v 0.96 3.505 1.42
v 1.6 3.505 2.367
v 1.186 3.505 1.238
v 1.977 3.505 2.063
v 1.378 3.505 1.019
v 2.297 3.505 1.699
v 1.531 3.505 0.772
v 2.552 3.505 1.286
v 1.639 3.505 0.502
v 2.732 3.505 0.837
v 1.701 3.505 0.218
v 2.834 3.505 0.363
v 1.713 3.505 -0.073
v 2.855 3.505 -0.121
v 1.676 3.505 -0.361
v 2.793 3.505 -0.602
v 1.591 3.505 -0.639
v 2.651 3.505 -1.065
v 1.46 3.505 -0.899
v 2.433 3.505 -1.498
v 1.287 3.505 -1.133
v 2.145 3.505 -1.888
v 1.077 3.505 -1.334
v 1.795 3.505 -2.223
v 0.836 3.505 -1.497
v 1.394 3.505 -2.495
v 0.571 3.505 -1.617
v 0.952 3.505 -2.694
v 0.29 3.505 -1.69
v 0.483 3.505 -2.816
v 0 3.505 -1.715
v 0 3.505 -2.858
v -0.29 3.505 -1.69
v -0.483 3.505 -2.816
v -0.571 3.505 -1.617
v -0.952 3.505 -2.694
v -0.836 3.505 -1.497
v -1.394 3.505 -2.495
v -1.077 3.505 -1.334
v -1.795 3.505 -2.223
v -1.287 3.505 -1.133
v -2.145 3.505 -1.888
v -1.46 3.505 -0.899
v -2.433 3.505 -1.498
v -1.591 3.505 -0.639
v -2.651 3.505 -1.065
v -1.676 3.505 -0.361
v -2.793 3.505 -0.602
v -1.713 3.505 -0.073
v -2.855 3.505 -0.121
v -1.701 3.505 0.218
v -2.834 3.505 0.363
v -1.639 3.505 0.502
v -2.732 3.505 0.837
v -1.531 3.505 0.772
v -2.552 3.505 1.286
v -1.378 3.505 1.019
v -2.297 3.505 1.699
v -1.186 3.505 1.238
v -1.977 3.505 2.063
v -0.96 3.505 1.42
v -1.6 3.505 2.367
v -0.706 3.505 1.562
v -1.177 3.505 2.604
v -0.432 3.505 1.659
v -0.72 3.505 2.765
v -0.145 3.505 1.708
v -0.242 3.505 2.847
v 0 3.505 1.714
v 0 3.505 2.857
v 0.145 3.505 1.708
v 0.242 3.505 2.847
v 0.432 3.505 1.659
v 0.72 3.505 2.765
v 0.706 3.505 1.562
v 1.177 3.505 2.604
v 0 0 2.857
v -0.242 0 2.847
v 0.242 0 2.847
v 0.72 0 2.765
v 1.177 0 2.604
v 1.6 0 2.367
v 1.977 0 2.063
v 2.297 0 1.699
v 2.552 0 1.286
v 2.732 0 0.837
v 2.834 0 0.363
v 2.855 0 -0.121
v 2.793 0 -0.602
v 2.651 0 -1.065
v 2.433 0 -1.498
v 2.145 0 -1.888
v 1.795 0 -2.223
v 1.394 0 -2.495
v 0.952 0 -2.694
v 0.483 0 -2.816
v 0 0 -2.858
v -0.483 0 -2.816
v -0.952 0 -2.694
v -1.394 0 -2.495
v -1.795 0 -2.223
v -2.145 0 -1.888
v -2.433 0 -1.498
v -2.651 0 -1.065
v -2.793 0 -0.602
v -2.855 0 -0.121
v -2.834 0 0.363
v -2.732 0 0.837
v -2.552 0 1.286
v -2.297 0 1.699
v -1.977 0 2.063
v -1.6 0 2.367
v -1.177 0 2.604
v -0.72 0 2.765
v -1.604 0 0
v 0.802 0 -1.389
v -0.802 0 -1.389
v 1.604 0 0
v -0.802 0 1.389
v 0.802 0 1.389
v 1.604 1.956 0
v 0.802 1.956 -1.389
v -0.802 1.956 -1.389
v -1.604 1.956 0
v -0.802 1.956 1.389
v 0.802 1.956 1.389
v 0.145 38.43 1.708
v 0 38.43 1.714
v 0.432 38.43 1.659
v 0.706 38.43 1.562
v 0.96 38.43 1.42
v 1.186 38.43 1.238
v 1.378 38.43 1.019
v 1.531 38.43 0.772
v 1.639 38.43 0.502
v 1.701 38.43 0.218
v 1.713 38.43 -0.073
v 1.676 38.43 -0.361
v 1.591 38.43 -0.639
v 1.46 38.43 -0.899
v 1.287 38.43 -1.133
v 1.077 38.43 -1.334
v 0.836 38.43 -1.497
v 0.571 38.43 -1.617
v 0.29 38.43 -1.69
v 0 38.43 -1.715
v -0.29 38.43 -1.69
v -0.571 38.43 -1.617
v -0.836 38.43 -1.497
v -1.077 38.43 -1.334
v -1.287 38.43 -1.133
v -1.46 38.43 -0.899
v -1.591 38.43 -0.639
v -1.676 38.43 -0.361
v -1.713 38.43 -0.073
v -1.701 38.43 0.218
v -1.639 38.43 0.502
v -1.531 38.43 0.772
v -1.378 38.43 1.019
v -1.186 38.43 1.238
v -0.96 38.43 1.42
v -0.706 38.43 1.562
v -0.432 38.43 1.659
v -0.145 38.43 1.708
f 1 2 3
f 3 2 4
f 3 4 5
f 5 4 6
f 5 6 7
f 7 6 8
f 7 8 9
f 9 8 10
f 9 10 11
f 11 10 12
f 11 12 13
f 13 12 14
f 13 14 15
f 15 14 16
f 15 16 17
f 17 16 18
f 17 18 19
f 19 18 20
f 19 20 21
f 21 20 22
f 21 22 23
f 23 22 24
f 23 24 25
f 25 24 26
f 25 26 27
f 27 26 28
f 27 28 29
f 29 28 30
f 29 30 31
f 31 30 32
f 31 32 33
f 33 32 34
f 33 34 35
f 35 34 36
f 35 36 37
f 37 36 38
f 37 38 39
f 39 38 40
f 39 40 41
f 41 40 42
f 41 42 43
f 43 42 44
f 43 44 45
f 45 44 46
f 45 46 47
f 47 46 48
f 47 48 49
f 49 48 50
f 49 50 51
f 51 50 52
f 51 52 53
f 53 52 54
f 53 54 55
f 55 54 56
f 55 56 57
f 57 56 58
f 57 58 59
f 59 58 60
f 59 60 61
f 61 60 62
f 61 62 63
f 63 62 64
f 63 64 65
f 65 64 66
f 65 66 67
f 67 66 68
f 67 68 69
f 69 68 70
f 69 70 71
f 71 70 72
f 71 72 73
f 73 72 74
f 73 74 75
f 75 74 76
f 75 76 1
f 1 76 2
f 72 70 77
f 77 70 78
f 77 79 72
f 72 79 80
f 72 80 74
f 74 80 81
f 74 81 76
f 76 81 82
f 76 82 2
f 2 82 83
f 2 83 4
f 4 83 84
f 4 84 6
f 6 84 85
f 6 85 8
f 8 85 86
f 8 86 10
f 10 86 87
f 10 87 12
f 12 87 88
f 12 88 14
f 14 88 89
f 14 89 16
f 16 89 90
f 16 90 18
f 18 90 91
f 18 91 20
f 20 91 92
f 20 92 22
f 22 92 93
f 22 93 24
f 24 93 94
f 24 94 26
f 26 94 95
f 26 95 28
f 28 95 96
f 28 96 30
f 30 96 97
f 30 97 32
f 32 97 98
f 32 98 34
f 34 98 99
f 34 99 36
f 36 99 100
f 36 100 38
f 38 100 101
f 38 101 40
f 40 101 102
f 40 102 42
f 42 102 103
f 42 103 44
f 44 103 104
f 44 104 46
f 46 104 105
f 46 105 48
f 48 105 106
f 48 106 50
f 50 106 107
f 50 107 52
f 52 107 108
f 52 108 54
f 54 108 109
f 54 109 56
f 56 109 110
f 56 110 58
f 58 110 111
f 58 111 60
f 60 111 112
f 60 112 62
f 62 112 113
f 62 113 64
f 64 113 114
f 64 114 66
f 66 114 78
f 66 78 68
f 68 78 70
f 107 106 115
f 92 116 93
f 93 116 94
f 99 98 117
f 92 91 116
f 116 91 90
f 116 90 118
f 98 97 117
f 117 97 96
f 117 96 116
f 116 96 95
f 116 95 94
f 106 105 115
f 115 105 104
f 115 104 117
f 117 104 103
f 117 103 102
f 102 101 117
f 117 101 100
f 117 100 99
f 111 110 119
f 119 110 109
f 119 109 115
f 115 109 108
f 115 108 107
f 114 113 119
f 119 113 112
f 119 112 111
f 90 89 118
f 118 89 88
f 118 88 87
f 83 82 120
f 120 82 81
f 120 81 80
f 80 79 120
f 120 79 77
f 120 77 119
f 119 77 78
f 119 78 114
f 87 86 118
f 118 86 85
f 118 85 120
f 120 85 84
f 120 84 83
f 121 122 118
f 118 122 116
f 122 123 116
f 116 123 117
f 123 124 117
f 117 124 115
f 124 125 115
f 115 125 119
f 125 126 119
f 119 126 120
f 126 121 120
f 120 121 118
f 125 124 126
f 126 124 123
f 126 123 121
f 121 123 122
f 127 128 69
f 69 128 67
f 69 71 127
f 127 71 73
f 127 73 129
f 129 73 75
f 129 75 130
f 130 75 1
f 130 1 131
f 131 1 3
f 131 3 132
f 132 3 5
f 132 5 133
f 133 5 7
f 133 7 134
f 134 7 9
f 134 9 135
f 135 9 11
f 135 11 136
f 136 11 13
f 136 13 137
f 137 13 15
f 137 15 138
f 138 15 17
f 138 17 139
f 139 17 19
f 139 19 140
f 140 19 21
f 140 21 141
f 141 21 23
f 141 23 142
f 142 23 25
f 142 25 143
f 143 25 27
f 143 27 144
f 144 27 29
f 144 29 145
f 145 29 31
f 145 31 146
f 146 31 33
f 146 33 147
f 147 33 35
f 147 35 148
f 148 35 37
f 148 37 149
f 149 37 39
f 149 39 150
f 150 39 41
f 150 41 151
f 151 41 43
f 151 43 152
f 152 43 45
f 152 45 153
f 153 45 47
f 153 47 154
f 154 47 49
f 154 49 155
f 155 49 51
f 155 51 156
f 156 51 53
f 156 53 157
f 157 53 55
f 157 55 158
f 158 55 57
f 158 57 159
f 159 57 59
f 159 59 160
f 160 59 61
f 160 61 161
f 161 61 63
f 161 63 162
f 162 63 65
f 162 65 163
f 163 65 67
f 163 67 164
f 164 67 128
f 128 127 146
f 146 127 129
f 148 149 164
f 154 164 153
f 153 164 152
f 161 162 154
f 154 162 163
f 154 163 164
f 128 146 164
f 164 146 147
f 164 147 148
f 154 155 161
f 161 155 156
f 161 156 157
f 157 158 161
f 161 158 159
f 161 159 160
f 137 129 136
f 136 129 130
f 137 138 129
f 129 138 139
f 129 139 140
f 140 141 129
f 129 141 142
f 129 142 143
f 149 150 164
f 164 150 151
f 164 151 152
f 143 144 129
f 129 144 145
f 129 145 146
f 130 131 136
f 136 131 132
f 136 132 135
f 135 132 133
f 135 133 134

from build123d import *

# Parameters (mm, degrees)
SKETCH1_R           = 2.8575
BOSS_EXTRUDE1_DEPTH = 3.5052
CUT_EXTRUDE1_DEPTH  = 1.9558
SKETCH3_R           = 1.7145
BOSS_EXTRUDE2_DEPTH = 34.925


with BuildPart() as part:
    # Sketch1 → Boss-Extrude1 (new body)
    with BuildSketch(Plane(origin=(0, 0, 0), x_dir=(1, 0, 0), z_dir=(0, 1, 0))):
        Circle(SKETCH1_R)
    extrude(amount=BOSS_EXTRUDE1_DEPTH)

    # Sketch2 → Cut-Extrude1 (cut)
    with BuildSketch(Plane.XZ):
        Polygon((1.603951217, 0), (0.801975608, 1.3890625), (-0.801975608, 1.3890625), (-1.603951217, 0), (-0.801975608, -1.3890625), (0.801975608, -1.3890625), align=None)
    extrude(amount=-CUT_EXTRUDE1_DEPTH, mode=Mode.SUBTRACT)

    # Sketch3 → Boss-Extrude2 (add)
    with BuildSketch(Plane(origin=(0, 3.5052, 0), x_dir=(1, 0, 0), z_dir=(0, 1, 0))):
        Circle(SKETCH3_R)
    extrude(amount=BOSS_EXTRUDE2_DEPTH)


solid = part.part
